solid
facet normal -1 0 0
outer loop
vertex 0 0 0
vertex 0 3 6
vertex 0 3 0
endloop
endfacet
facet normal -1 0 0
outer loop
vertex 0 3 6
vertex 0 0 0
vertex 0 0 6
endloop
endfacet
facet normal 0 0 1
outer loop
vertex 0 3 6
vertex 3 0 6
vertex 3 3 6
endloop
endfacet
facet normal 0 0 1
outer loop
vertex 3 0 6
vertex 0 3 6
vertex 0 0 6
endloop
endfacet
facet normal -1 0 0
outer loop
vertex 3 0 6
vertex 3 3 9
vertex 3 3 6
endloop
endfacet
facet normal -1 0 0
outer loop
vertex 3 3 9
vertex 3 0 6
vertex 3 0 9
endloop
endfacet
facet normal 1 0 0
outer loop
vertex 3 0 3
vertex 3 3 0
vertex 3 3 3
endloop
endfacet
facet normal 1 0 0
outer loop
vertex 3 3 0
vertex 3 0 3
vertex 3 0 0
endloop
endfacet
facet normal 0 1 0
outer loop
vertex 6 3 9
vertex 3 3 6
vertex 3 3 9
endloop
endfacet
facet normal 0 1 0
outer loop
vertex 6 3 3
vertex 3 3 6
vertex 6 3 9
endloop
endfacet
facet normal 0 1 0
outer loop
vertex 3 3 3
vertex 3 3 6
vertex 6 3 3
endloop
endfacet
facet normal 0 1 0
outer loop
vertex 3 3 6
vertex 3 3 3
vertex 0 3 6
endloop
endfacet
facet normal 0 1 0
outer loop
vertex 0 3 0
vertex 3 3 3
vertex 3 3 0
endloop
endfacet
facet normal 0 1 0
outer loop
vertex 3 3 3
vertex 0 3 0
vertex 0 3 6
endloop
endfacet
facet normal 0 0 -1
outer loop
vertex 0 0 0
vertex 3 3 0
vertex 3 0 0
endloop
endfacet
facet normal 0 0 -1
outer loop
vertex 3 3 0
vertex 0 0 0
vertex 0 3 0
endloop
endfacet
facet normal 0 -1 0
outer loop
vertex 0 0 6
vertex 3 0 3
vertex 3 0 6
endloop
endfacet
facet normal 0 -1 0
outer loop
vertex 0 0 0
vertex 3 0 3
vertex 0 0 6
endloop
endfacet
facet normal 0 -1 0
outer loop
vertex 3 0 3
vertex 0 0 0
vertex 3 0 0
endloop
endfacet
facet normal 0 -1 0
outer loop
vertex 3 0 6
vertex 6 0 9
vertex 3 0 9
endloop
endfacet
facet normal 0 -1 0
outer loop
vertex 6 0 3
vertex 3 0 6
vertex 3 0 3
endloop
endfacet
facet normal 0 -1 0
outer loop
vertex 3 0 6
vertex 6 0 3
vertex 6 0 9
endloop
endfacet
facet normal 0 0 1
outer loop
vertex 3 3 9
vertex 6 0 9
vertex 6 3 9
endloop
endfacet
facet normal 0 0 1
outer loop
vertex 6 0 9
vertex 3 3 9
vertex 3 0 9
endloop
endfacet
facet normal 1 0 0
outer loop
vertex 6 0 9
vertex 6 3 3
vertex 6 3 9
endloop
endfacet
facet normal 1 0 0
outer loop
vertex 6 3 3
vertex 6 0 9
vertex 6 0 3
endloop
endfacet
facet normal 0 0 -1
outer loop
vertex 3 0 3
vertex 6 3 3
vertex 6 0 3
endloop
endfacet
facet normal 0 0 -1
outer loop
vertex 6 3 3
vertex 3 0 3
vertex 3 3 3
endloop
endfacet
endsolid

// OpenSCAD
module bausteins(){
    union(){
        cube([3,3,6]);
        translate([3,0,3])
            cube([3,3,6]);
        }
}
bausteins();
